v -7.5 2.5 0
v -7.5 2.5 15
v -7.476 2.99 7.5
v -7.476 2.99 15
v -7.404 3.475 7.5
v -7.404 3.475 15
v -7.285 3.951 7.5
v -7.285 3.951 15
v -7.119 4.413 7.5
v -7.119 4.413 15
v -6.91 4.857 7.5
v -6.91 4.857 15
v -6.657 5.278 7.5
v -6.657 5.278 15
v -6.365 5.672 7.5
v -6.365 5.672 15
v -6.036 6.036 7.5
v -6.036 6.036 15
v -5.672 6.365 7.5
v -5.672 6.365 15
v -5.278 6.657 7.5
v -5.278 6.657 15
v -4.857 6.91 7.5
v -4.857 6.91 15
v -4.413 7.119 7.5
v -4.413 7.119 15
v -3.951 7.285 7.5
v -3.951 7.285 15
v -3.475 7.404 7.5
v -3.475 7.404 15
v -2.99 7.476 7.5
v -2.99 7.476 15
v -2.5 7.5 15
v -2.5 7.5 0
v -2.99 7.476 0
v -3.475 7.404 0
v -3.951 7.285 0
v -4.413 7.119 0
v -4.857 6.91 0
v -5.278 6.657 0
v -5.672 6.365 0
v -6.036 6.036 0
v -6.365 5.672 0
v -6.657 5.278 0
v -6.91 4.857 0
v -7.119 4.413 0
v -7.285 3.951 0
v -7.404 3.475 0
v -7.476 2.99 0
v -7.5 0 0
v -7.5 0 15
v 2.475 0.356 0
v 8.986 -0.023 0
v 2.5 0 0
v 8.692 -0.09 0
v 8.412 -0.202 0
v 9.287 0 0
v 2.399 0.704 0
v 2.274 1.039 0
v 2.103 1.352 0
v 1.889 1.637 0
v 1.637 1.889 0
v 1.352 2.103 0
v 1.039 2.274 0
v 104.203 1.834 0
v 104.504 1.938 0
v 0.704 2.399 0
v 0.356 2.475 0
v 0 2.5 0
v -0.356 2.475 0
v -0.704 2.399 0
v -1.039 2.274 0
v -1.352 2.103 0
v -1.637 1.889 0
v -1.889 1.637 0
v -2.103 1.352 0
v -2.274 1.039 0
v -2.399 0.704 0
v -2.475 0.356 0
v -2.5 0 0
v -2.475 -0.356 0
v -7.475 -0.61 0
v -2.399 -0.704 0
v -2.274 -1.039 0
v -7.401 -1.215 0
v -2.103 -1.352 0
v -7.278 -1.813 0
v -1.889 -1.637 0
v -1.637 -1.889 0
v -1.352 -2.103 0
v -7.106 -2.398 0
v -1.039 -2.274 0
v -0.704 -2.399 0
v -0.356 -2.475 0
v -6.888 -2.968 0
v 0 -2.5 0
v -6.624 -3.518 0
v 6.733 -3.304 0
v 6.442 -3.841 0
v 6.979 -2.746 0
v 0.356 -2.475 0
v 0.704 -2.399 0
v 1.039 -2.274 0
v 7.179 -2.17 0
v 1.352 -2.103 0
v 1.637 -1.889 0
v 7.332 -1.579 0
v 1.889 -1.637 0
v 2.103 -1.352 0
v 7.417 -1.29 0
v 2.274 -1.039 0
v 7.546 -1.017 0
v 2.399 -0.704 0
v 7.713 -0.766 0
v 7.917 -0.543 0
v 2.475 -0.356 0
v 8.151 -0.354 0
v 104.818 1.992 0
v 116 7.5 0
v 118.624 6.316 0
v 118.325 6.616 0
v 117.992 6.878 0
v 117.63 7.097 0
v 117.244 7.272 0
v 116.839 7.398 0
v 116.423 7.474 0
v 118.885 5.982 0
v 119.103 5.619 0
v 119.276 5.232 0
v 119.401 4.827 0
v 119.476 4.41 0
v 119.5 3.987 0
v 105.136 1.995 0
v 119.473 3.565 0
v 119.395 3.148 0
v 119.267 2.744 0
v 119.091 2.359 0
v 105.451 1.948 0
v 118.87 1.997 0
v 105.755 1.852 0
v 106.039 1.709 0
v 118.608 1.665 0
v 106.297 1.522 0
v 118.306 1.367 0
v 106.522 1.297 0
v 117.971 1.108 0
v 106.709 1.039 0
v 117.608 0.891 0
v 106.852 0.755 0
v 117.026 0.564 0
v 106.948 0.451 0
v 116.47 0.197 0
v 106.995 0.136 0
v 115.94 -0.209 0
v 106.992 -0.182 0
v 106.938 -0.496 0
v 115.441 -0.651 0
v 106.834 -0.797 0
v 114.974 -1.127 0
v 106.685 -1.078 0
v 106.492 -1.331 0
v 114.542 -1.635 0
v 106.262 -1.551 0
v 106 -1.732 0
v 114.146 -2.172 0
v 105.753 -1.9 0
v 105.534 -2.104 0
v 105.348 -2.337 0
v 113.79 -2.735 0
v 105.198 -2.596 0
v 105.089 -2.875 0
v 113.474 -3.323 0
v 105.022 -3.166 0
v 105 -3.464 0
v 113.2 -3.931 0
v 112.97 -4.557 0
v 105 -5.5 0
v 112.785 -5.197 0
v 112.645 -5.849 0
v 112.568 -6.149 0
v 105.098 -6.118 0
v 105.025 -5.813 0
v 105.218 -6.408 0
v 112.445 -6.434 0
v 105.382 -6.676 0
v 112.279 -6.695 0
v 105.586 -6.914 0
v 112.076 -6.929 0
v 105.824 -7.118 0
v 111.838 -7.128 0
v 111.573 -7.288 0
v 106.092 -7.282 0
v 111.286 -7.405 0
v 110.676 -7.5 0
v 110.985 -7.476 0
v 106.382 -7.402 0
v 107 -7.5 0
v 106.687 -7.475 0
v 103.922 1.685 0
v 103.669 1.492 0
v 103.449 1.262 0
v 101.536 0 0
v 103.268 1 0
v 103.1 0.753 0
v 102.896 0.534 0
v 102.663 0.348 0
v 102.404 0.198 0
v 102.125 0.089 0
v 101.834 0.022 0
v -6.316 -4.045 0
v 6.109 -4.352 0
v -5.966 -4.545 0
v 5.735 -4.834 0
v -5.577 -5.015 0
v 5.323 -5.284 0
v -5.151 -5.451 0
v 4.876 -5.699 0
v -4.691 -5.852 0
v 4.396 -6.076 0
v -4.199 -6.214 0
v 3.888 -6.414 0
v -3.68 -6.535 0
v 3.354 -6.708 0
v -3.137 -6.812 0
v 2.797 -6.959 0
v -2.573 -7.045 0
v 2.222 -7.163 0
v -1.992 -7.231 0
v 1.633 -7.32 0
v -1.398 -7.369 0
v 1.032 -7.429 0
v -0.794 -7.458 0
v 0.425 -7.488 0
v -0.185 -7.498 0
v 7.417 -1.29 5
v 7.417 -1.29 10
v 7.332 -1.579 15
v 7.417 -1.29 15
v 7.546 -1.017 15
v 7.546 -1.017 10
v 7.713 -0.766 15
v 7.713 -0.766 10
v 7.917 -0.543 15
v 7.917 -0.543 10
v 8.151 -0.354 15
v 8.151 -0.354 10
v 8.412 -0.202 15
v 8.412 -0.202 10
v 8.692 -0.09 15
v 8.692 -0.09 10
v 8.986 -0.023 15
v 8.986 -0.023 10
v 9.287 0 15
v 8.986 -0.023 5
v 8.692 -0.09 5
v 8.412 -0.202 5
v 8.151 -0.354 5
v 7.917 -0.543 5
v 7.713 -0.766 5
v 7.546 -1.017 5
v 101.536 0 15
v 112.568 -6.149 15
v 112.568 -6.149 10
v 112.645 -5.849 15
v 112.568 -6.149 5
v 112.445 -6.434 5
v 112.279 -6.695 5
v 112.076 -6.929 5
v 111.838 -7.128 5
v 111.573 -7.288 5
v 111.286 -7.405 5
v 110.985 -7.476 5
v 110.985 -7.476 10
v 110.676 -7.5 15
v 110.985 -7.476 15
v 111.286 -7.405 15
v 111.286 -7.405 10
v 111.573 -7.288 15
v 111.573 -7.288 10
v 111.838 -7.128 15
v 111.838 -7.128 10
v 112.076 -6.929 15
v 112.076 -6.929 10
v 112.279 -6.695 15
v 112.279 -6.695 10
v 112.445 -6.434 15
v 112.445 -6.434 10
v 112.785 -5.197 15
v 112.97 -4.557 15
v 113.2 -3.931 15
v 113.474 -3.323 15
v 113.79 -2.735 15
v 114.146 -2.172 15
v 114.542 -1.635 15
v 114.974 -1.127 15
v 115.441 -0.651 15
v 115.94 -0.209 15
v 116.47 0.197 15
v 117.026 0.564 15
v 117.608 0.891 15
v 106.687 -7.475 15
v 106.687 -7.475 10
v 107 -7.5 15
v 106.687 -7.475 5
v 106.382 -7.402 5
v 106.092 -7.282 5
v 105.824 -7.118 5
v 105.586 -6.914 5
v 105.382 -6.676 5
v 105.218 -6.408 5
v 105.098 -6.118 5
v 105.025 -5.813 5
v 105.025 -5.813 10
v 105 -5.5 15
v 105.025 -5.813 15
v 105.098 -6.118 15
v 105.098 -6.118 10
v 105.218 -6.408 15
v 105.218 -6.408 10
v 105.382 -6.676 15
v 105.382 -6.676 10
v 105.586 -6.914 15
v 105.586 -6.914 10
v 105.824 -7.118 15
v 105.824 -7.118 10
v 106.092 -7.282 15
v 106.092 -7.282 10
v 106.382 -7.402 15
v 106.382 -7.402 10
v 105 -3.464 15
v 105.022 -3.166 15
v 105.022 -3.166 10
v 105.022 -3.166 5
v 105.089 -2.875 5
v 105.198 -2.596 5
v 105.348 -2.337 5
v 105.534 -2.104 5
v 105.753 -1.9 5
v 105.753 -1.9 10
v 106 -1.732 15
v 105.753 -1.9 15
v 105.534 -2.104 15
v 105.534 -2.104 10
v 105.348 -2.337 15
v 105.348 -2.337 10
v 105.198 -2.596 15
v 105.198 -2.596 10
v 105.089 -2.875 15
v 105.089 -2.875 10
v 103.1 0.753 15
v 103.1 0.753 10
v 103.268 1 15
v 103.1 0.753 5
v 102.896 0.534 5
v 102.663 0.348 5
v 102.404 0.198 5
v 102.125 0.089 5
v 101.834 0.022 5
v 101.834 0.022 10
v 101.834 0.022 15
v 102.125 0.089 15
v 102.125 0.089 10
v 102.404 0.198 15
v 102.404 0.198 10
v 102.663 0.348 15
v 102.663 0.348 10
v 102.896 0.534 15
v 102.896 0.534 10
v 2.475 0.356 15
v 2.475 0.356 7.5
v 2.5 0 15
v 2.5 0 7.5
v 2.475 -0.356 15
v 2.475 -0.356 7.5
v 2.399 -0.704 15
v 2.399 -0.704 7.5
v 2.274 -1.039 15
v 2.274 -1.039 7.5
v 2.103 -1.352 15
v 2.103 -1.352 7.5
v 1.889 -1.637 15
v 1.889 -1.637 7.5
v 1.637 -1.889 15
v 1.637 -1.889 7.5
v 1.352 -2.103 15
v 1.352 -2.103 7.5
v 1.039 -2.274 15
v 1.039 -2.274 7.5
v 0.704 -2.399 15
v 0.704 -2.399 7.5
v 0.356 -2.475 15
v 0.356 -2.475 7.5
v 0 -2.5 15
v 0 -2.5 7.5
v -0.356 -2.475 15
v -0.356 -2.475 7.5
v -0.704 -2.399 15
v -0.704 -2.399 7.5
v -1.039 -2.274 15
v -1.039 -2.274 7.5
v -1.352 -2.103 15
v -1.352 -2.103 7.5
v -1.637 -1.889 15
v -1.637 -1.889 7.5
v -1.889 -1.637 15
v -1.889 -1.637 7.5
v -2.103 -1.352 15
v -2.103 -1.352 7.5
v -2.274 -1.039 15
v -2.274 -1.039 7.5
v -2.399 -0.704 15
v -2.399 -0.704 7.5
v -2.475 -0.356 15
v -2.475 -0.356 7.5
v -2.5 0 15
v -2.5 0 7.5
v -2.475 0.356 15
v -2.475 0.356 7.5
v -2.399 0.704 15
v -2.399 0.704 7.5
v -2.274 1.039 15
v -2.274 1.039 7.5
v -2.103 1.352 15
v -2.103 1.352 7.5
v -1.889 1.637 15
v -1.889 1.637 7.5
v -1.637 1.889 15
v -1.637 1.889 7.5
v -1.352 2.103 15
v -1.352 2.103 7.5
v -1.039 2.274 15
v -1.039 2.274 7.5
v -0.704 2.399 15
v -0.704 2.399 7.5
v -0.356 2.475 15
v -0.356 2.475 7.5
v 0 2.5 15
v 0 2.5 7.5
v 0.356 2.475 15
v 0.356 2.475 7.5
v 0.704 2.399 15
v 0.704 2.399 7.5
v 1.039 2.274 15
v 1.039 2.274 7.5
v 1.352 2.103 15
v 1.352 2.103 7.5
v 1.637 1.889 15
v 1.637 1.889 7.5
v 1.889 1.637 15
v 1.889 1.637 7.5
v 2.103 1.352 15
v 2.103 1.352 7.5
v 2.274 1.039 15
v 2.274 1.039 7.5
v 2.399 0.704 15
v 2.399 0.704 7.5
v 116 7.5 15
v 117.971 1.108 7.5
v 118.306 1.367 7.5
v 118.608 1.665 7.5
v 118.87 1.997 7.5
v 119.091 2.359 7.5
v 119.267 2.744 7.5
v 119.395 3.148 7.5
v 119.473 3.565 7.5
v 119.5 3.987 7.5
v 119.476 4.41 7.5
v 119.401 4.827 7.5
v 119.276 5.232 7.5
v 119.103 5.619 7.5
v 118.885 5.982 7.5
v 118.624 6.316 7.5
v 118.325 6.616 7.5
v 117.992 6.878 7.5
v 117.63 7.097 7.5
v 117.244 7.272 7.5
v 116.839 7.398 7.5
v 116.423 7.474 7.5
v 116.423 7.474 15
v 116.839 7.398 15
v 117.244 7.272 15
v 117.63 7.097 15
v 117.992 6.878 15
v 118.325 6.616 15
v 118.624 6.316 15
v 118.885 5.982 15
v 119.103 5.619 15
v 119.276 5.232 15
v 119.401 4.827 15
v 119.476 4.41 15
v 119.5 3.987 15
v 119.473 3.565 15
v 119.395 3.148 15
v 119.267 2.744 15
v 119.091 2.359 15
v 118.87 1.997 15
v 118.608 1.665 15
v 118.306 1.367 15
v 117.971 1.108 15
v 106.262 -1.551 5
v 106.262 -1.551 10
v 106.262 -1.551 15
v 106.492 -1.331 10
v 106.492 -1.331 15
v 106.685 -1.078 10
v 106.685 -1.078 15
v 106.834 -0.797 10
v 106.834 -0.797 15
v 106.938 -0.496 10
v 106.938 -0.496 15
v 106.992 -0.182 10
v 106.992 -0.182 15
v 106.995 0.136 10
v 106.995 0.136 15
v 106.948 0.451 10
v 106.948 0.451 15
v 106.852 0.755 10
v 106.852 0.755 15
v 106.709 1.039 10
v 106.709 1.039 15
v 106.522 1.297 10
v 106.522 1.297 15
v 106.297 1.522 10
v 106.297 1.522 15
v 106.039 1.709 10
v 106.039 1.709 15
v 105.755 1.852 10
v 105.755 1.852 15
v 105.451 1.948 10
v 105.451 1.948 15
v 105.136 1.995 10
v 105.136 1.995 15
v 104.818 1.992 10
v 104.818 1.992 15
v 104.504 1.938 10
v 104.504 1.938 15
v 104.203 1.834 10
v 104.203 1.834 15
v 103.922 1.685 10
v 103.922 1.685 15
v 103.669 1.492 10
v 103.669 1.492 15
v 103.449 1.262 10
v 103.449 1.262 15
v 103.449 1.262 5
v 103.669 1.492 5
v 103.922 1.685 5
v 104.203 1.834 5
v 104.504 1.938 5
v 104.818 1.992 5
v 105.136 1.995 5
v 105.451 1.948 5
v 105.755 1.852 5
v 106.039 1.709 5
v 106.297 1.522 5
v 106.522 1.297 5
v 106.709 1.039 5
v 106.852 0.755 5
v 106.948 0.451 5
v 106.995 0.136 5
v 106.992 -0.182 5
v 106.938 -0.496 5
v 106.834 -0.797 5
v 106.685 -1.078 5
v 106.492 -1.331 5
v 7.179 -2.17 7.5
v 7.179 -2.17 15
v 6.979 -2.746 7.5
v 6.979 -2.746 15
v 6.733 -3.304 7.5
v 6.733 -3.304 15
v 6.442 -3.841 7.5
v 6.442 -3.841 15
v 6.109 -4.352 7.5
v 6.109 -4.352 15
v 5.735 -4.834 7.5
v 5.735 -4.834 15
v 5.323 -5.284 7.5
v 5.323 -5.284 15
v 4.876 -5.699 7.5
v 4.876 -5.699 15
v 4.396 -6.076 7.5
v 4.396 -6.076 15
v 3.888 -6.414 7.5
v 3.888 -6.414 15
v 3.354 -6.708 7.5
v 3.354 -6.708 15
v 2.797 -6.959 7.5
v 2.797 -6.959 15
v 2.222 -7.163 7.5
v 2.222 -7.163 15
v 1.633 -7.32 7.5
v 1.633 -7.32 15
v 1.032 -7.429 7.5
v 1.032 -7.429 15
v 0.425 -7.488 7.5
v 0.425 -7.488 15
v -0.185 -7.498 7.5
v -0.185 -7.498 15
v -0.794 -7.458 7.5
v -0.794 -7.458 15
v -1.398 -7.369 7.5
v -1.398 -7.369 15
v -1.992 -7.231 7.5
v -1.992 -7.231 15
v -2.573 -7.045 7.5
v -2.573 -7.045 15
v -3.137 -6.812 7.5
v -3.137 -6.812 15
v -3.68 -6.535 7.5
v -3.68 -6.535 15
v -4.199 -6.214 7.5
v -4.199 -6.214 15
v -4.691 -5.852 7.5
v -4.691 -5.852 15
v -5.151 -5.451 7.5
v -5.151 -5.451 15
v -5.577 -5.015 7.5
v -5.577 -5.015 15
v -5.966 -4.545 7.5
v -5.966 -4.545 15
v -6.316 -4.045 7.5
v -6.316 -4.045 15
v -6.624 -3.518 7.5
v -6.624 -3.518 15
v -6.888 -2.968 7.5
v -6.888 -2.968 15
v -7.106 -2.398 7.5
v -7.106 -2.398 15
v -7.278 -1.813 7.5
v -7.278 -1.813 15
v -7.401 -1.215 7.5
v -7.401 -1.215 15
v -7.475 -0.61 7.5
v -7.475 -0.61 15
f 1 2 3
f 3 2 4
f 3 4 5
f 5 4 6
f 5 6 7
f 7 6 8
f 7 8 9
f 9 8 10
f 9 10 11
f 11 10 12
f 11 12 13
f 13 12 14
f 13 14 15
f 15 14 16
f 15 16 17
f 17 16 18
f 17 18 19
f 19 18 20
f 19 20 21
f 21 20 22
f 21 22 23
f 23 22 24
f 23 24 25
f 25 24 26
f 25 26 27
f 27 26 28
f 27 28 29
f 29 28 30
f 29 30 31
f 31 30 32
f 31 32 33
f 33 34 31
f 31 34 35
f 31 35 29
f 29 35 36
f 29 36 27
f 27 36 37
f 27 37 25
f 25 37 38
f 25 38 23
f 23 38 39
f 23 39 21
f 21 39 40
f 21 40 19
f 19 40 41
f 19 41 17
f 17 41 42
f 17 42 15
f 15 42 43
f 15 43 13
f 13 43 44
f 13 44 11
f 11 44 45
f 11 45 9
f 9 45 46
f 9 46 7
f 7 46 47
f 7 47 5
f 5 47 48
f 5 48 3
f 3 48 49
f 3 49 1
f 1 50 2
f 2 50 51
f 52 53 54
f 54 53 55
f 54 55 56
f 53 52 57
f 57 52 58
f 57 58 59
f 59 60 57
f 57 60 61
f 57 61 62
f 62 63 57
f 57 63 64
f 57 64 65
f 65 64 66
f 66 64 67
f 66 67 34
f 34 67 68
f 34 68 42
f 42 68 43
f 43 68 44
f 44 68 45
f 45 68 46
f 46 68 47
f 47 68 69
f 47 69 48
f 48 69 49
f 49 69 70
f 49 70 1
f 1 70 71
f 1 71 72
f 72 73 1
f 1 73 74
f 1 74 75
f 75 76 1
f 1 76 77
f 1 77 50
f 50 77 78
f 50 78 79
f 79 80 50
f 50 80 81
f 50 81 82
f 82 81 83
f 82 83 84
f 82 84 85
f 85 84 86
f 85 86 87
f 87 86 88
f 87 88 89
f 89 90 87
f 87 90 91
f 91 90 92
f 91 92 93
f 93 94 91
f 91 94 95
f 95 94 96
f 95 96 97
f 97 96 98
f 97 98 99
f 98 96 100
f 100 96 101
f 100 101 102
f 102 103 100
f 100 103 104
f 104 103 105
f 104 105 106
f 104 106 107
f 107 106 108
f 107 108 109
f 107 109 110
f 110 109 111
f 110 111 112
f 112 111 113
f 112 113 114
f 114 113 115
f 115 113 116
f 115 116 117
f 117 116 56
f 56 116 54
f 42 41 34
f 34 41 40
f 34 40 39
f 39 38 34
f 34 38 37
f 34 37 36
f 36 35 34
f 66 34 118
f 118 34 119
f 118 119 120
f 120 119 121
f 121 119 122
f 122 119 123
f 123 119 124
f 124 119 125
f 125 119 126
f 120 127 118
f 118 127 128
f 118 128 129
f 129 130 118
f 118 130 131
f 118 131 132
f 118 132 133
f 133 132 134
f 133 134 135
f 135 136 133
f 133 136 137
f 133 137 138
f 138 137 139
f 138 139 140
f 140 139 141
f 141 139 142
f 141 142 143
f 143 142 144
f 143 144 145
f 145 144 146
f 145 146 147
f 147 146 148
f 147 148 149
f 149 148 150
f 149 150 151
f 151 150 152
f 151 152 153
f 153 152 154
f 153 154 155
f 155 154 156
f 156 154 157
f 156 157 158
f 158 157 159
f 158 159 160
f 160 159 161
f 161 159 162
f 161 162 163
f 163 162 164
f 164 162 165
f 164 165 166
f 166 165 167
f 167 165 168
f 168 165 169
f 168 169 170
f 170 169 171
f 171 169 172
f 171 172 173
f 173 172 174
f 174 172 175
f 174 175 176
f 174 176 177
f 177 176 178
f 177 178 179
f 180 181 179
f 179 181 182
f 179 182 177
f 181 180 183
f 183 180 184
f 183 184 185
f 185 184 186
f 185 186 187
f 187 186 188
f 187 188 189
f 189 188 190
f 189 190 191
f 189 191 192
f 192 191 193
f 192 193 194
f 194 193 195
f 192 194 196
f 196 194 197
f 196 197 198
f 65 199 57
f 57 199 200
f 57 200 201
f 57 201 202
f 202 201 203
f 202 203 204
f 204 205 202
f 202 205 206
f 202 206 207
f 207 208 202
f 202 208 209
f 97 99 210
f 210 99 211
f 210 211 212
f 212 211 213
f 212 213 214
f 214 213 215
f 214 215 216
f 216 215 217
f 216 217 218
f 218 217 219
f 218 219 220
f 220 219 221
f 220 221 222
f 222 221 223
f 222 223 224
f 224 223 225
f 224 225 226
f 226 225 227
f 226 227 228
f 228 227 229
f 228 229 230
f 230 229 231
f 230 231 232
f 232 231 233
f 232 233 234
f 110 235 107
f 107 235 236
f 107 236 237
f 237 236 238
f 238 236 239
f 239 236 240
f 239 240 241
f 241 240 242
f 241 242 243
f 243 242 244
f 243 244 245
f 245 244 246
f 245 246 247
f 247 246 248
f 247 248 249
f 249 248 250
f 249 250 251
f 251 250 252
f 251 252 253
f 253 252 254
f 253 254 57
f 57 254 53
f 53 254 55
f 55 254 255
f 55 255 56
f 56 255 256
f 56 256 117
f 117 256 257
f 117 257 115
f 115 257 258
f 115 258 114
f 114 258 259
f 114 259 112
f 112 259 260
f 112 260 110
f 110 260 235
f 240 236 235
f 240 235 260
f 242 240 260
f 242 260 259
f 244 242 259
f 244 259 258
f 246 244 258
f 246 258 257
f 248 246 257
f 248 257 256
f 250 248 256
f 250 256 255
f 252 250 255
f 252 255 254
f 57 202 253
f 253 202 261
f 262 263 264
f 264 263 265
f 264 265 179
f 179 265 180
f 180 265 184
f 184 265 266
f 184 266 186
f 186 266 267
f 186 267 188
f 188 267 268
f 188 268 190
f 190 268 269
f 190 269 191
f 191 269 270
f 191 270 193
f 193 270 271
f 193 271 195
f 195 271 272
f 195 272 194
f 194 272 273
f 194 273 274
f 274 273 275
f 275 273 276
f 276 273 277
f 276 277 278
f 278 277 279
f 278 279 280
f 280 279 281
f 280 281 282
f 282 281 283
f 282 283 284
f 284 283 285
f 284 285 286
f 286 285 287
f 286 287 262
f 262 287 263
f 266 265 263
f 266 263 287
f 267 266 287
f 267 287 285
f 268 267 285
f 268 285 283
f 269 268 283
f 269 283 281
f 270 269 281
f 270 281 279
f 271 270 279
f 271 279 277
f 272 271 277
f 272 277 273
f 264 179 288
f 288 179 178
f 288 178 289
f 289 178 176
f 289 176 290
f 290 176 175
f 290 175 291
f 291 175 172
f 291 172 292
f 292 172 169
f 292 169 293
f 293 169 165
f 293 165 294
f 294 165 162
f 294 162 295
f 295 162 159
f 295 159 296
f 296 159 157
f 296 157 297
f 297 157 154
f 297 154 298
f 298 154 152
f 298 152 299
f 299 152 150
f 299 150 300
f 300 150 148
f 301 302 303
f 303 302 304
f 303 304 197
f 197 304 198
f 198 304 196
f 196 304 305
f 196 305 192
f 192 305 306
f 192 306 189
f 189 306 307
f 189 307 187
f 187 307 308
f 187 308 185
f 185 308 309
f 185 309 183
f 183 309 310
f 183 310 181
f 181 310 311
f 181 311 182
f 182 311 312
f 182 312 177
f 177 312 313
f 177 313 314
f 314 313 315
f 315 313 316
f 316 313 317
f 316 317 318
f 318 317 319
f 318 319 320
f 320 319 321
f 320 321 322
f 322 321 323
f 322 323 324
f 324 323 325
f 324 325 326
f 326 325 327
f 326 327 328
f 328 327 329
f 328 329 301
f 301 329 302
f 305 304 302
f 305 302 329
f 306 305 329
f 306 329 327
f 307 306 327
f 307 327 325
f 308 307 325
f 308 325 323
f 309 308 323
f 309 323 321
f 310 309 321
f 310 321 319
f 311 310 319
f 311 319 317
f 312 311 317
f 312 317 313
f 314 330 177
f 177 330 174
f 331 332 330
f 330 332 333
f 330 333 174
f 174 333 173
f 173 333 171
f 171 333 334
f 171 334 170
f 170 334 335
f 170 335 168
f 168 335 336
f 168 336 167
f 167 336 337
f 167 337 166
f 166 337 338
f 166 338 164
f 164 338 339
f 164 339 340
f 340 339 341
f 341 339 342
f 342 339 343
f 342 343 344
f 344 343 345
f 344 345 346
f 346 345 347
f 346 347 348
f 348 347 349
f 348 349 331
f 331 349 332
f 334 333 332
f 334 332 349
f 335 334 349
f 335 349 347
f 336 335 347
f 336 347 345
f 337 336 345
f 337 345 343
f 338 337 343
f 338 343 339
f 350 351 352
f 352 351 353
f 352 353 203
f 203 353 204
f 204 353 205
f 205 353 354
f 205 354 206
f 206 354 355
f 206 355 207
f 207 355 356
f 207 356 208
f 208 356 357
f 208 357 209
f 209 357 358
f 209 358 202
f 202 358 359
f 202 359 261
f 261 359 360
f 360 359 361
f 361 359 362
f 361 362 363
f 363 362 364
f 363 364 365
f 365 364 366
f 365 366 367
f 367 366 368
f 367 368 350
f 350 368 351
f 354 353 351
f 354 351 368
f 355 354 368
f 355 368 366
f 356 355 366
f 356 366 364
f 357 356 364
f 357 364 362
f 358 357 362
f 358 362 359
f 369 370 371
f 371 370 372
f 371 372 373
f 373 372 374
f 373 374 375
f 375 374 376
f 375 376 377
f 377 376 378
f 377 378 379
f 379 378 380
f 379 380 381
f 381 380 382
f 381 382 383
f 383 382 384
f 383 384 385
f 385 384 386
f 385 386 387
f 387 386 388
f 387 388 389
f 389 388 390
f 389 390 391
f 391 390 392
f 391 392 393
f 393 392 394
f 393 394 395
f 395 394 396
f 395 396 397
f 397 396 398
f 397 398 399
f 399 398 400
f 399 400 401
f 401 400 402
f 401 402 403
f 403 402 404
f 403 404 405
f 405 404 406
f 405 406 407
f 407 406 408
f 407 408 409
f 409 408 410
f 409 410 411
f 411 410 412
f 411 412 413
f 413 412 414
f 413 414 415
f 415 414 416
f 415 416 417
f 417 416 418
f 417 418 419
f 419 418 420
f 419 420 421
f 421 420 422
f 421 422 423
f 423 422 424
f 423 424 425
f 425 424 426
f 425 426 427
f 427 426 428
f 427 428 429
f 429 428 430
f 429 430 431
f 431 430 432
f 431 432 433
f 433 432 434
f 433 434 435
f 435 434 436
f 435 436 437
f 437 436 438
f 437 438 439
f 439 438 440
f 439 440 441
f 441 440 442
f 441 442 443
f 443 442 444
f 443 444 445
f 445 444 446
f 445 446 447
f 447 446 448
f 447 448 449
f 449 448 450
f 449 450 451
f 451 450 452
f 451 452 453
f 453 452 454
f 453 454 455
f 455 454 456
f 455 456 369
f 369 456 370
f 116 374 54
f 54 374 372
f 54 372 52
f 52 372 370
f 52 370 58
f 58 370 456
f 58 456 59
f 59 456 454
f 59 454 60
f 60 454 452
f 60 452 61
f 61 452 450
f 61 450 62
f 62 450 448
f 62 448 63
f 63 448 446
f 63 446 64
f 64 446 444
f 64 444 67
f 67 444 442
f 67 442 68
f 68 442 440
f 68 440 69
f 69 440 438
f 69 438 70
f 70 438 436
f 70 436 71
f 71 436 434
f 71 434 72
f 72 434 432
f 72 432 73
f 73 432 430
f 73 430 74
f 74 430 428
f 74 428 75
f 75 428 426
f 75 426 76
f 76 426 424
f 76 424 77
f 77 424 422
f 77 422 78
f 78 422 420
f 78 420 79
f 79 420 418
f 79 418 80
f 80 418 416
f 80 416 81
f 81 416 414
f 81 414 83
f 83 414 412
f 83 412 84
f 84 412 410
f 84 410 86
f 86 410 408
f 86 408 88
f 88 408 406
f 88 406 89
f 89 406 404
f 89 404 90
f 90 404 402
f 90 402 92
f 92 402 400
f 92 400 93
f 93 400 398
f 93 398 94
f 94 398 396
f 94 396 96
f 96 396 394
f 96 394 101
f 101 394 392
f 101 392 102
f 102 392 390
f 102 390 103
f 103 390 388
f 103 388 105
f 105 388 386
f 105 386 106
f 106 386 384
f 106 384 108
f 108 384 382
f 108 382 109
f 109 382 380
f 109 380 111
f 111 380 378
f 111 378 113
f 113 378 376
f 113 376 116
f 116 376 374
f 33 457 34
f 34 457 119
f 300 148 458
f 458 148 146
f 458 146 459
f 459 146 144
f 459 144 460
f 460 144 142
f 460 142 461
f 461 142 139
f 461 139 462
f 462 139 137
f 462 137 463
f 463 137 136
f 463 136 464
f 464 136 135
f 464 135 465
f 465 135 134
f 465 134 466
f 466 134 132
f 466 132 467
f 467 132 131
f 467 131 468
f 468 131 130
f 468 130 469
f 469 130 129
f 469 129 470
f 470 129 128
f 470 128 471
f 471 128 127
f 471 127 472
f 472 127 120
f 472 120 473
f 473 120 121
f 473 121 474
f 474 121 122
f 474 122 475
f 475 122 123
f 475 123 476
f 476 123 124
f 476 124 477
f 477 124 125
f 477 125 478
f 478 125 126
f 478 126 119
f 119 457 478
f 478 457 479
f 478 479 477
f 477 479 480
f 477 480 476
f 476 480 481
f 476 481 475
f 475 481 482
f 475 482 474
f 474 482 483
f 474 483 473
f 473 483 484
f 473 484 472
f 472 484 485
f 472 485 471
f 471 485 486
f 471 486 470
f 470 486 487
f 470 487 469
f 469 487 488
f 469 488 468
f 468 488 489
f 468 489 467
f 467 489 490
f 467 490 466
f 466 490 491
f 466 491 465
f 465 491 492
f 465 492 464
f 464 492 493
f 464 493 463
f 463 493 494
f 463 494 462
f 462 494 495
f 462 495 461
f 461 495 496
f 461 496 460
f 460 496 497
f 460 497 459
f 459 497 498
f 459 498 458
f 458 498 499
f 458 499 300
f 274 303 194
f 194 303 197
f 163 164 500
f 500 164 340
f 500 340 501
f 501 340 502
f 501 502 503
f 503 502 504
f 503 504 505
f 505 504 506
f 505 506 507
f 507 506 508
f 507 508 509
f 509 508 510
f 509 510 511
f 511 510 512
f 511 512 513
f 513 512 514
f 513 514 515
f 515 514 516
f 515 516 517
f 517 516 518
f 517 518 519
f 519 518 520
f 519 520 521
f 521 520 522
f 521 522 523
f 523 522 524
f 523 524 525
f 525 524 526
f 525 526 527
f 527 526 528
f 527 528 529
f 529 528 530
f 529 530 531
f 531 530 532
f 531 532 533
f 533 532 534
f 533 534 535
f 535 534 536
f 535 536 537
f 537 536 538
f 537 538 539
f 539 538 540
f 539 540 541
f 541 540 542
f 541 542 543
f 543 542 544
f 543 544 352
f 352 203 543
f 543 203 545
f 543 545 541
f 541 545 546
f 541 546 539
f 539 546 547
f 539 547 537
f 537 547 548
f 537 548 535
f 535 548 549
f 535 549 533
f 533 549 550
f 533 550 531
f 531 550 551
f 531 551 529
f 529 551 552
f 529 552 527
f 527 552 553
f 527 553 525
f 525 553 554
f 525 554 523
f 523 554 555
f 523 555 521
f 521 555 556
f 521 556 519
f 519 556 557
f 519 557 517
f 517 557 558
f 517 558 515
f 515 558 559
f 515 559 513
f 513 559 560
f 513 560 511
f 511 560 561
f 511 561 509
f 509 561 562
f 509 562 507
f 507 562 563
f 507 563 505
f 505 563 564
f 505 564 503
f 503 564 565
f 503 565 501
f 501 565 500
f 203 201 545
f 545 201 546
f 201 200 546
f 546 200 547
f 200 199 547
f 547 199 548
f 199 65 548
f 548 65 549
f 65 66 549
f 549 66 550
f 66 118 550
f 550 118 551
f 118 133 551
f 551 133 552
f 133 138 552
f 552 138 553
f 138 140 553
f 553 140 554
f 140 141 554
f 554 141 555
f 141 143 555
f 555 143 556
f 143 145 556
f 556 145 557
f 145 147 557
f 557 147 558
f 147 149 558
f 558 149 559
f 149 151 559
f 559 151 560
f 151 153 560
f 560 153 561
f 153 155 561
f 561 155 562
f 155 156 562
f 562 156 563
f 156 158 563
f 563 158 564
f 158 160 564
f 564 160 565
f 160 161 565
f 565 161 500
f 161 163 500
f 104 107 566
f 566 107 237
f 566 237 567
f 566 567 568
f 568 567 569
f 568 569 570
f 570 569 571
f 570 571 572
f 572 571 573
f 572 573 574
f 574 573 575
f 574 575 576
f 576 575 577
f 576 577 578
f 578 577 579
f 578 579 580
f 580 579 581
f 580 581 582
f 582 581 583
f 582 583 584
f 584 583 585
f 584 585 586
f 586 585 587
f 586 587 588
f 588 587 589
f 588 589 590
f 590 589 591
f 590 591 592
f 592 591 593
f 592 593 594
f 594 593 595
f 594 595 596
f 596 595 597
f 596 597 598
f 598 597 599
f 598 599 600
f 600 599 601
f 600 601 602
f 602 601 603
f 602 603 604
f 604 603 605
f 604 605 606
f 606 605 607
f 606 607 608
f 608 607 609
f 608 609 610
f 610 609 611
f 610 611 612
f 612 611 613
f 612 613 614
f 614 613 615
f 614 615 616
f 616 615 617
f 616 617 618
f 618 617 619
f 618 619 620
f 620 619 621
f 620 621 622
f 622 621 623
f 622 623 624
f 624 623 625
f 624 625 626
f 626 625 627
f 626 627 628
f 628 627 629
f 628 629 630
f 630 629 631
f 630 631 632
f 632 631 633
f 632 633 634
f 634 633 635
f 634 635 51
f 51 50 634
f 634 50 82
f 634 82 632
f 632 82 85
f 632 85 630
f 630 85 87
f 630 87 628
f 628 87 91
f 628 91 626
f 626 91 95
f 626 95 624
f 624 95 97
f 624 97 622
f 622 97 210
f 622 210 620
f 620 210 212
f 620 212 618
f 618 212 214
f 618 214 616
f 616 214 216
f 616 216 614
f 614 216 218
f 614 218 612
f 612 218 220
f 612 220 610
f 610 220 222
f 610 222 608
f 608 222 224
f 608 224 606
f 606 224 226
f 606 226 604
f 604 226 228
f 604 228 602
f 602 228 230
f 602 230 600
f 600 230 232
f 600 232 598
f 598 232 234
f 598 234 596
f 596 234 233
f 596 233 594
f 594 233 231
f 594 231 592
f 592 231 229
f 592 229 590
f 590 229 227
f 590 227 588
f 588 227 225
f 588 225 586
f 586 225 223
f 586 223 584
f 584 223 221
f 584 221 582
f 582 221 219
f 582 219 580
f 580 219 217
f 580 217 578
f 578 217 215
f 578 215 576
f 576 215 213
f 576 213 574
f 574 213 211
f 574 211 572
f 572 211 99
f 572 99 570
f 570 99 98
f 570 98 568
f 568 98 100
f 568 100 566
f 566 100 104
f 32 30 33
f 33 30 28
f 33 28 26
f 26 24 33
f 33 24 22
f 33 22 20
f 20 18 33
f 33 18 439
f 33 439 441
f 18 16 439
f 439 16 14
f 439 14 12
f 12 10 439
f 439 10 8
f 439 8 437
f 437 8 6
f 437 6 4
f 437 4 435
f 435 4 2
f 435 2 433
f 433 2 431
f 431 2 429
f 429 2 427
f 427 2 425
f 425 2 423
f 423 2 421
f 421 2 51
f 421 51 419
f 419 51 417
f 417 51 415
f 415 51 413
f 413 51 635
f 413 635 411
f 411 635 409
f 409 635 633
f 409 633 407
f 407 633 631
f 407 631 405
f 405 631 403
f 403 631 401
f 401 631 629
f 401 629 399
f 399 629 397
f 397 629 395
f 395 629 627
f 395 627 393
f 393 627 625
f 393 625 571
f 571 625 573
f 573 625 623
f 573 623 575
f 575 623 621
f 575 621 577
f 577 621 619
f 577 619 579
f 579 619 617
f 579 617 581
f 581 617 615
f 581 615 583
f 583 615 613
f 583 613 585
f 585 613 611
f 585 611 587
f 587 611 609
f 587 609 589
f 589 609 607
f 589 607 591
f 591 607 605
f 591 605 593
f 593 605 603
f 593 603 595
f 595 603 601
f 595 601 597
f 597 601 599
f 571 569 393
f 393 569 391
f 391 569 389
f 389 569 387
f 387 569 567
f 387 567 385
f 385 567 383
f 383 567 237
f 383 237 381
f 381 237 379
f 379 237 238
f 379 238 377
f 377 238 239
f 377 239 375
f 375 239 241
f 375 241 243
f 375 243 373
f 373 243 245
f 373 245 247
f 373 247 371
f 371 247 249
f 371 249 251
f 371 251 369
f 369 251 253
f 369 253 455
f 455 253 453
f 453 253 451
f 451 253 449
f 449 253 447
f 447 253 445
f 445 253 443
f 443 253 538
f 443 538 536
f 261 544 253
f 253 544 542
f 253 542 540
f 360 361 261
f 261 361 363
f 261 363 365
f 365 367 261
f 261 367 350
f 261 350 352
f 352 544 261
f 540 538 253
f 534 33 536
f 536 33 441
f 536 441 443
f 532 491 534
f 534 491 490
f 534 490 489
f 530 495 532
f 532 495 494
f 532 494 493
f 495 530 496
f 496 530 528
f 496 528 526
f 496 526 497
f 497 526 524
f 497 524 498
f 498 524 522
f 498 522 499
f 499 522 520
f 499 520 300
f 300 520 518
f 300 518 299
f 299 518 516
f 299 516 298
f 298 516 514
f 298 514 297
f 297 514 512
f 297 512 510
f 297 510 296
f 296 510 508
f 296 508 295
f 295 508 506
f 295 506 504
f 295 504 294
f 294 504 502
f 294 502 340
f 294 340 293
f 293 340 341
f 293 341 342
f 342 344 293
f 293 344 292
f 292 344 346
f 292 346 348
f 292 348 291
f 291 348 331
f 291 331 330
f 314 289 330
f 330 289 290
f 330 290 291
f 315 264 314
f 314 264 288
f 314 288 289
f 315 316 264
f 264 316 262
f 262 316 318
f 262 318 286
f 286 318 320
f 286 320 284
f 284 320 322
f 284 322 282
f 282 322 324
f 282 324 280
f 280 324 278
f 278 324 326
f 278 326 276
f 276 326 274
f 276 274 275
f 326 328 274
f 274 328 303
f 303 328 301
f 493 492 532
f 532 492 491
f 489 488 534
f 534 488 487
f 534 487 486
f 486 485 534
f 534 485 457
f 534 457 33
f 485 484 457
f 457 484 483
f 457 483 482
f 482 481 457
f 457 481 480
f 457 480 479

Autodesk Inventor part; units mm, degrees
ref_plane "YZ Plane" through (0, 0, 0) normal (1, 0, 0) x (0, 1, 0)
ref_plane "XZ Plane" through (0, 0, 0) normal (0, 1, 0) x (-1, 0, 0)
ref_plane "XY Plane" through (0, 0, 0) normal (0, 0, 1) x (1, 0, 0)
sketch "Sketch1" plane through (0, 0, 0) normal (0, 0, 1) x (1, 0, 0)
  circle A0 centre (0, 0) radius 2.5
  circle A1 centre (0, 0) radius 7.5
  line L0 (-7.5, 0) -> (112.5, 0)
  line L1 (112.5, 0) -> (112.5, 7.5)
  line L2 (112.5, 7.5) -> (-7.5, 7.5)
  line L3 (-7.5, 7.5) -> (-7.5, 0)
  circle A2 centre (105, 0) radius 7.5 construction
  circle A3 centre (105, 0) radius 2
  line L4 (112.5, 7.5) -> (105, 7.5)
  line L5 (105, 7.5) -> (105, -7.5)
  line L6 (105, -7.5) -> (112.5, -7.5)
  line L7 (112.5, -7.5) -> (112.5, 7.5)
  circle A4 centre (116, 4) radius 3.5
  line L8 (112.5, 7.5) -> (116, 7.5)
  arc A5 (117.6076, 0.891) -> (112.5, -7.5) centre (121.9464, -7.5) ccw
  point P0 (7.5, 0)
  point P1 (103, 0)
  point P2 (105, -2)
  dimension "d1" = 15
  dimension "d3" = 15
  dimension "d0" = 5
  dimension "d2" = 120
  dimension "d4" = 4
  dimension "d5" = 7
extrude "Extrusion1" add sketch "Sketch1" along normal blind 15 contours L0 A1 A0 | A0 L0 A1 | A1 L2 L5 A3 L0 | L3 L2 A1 | L2 L1 L0 A3 L5 | A3 L0 L7 L6 L5 | L8 A4 L1 | A4 A5 L7 L1 | A4
fillet "Fillet1" radius 2 5 edges at (103, 0, 7.5) (105, -2, 7.5) (105, -7.5, 7.5) (112.5, -7.5, 7.5) (7.5, 0, 7.5)
fillet "Fillet2" radius 5 1 edges at (-7.5, 7.5, 7.5)
properties part number "Lid"
